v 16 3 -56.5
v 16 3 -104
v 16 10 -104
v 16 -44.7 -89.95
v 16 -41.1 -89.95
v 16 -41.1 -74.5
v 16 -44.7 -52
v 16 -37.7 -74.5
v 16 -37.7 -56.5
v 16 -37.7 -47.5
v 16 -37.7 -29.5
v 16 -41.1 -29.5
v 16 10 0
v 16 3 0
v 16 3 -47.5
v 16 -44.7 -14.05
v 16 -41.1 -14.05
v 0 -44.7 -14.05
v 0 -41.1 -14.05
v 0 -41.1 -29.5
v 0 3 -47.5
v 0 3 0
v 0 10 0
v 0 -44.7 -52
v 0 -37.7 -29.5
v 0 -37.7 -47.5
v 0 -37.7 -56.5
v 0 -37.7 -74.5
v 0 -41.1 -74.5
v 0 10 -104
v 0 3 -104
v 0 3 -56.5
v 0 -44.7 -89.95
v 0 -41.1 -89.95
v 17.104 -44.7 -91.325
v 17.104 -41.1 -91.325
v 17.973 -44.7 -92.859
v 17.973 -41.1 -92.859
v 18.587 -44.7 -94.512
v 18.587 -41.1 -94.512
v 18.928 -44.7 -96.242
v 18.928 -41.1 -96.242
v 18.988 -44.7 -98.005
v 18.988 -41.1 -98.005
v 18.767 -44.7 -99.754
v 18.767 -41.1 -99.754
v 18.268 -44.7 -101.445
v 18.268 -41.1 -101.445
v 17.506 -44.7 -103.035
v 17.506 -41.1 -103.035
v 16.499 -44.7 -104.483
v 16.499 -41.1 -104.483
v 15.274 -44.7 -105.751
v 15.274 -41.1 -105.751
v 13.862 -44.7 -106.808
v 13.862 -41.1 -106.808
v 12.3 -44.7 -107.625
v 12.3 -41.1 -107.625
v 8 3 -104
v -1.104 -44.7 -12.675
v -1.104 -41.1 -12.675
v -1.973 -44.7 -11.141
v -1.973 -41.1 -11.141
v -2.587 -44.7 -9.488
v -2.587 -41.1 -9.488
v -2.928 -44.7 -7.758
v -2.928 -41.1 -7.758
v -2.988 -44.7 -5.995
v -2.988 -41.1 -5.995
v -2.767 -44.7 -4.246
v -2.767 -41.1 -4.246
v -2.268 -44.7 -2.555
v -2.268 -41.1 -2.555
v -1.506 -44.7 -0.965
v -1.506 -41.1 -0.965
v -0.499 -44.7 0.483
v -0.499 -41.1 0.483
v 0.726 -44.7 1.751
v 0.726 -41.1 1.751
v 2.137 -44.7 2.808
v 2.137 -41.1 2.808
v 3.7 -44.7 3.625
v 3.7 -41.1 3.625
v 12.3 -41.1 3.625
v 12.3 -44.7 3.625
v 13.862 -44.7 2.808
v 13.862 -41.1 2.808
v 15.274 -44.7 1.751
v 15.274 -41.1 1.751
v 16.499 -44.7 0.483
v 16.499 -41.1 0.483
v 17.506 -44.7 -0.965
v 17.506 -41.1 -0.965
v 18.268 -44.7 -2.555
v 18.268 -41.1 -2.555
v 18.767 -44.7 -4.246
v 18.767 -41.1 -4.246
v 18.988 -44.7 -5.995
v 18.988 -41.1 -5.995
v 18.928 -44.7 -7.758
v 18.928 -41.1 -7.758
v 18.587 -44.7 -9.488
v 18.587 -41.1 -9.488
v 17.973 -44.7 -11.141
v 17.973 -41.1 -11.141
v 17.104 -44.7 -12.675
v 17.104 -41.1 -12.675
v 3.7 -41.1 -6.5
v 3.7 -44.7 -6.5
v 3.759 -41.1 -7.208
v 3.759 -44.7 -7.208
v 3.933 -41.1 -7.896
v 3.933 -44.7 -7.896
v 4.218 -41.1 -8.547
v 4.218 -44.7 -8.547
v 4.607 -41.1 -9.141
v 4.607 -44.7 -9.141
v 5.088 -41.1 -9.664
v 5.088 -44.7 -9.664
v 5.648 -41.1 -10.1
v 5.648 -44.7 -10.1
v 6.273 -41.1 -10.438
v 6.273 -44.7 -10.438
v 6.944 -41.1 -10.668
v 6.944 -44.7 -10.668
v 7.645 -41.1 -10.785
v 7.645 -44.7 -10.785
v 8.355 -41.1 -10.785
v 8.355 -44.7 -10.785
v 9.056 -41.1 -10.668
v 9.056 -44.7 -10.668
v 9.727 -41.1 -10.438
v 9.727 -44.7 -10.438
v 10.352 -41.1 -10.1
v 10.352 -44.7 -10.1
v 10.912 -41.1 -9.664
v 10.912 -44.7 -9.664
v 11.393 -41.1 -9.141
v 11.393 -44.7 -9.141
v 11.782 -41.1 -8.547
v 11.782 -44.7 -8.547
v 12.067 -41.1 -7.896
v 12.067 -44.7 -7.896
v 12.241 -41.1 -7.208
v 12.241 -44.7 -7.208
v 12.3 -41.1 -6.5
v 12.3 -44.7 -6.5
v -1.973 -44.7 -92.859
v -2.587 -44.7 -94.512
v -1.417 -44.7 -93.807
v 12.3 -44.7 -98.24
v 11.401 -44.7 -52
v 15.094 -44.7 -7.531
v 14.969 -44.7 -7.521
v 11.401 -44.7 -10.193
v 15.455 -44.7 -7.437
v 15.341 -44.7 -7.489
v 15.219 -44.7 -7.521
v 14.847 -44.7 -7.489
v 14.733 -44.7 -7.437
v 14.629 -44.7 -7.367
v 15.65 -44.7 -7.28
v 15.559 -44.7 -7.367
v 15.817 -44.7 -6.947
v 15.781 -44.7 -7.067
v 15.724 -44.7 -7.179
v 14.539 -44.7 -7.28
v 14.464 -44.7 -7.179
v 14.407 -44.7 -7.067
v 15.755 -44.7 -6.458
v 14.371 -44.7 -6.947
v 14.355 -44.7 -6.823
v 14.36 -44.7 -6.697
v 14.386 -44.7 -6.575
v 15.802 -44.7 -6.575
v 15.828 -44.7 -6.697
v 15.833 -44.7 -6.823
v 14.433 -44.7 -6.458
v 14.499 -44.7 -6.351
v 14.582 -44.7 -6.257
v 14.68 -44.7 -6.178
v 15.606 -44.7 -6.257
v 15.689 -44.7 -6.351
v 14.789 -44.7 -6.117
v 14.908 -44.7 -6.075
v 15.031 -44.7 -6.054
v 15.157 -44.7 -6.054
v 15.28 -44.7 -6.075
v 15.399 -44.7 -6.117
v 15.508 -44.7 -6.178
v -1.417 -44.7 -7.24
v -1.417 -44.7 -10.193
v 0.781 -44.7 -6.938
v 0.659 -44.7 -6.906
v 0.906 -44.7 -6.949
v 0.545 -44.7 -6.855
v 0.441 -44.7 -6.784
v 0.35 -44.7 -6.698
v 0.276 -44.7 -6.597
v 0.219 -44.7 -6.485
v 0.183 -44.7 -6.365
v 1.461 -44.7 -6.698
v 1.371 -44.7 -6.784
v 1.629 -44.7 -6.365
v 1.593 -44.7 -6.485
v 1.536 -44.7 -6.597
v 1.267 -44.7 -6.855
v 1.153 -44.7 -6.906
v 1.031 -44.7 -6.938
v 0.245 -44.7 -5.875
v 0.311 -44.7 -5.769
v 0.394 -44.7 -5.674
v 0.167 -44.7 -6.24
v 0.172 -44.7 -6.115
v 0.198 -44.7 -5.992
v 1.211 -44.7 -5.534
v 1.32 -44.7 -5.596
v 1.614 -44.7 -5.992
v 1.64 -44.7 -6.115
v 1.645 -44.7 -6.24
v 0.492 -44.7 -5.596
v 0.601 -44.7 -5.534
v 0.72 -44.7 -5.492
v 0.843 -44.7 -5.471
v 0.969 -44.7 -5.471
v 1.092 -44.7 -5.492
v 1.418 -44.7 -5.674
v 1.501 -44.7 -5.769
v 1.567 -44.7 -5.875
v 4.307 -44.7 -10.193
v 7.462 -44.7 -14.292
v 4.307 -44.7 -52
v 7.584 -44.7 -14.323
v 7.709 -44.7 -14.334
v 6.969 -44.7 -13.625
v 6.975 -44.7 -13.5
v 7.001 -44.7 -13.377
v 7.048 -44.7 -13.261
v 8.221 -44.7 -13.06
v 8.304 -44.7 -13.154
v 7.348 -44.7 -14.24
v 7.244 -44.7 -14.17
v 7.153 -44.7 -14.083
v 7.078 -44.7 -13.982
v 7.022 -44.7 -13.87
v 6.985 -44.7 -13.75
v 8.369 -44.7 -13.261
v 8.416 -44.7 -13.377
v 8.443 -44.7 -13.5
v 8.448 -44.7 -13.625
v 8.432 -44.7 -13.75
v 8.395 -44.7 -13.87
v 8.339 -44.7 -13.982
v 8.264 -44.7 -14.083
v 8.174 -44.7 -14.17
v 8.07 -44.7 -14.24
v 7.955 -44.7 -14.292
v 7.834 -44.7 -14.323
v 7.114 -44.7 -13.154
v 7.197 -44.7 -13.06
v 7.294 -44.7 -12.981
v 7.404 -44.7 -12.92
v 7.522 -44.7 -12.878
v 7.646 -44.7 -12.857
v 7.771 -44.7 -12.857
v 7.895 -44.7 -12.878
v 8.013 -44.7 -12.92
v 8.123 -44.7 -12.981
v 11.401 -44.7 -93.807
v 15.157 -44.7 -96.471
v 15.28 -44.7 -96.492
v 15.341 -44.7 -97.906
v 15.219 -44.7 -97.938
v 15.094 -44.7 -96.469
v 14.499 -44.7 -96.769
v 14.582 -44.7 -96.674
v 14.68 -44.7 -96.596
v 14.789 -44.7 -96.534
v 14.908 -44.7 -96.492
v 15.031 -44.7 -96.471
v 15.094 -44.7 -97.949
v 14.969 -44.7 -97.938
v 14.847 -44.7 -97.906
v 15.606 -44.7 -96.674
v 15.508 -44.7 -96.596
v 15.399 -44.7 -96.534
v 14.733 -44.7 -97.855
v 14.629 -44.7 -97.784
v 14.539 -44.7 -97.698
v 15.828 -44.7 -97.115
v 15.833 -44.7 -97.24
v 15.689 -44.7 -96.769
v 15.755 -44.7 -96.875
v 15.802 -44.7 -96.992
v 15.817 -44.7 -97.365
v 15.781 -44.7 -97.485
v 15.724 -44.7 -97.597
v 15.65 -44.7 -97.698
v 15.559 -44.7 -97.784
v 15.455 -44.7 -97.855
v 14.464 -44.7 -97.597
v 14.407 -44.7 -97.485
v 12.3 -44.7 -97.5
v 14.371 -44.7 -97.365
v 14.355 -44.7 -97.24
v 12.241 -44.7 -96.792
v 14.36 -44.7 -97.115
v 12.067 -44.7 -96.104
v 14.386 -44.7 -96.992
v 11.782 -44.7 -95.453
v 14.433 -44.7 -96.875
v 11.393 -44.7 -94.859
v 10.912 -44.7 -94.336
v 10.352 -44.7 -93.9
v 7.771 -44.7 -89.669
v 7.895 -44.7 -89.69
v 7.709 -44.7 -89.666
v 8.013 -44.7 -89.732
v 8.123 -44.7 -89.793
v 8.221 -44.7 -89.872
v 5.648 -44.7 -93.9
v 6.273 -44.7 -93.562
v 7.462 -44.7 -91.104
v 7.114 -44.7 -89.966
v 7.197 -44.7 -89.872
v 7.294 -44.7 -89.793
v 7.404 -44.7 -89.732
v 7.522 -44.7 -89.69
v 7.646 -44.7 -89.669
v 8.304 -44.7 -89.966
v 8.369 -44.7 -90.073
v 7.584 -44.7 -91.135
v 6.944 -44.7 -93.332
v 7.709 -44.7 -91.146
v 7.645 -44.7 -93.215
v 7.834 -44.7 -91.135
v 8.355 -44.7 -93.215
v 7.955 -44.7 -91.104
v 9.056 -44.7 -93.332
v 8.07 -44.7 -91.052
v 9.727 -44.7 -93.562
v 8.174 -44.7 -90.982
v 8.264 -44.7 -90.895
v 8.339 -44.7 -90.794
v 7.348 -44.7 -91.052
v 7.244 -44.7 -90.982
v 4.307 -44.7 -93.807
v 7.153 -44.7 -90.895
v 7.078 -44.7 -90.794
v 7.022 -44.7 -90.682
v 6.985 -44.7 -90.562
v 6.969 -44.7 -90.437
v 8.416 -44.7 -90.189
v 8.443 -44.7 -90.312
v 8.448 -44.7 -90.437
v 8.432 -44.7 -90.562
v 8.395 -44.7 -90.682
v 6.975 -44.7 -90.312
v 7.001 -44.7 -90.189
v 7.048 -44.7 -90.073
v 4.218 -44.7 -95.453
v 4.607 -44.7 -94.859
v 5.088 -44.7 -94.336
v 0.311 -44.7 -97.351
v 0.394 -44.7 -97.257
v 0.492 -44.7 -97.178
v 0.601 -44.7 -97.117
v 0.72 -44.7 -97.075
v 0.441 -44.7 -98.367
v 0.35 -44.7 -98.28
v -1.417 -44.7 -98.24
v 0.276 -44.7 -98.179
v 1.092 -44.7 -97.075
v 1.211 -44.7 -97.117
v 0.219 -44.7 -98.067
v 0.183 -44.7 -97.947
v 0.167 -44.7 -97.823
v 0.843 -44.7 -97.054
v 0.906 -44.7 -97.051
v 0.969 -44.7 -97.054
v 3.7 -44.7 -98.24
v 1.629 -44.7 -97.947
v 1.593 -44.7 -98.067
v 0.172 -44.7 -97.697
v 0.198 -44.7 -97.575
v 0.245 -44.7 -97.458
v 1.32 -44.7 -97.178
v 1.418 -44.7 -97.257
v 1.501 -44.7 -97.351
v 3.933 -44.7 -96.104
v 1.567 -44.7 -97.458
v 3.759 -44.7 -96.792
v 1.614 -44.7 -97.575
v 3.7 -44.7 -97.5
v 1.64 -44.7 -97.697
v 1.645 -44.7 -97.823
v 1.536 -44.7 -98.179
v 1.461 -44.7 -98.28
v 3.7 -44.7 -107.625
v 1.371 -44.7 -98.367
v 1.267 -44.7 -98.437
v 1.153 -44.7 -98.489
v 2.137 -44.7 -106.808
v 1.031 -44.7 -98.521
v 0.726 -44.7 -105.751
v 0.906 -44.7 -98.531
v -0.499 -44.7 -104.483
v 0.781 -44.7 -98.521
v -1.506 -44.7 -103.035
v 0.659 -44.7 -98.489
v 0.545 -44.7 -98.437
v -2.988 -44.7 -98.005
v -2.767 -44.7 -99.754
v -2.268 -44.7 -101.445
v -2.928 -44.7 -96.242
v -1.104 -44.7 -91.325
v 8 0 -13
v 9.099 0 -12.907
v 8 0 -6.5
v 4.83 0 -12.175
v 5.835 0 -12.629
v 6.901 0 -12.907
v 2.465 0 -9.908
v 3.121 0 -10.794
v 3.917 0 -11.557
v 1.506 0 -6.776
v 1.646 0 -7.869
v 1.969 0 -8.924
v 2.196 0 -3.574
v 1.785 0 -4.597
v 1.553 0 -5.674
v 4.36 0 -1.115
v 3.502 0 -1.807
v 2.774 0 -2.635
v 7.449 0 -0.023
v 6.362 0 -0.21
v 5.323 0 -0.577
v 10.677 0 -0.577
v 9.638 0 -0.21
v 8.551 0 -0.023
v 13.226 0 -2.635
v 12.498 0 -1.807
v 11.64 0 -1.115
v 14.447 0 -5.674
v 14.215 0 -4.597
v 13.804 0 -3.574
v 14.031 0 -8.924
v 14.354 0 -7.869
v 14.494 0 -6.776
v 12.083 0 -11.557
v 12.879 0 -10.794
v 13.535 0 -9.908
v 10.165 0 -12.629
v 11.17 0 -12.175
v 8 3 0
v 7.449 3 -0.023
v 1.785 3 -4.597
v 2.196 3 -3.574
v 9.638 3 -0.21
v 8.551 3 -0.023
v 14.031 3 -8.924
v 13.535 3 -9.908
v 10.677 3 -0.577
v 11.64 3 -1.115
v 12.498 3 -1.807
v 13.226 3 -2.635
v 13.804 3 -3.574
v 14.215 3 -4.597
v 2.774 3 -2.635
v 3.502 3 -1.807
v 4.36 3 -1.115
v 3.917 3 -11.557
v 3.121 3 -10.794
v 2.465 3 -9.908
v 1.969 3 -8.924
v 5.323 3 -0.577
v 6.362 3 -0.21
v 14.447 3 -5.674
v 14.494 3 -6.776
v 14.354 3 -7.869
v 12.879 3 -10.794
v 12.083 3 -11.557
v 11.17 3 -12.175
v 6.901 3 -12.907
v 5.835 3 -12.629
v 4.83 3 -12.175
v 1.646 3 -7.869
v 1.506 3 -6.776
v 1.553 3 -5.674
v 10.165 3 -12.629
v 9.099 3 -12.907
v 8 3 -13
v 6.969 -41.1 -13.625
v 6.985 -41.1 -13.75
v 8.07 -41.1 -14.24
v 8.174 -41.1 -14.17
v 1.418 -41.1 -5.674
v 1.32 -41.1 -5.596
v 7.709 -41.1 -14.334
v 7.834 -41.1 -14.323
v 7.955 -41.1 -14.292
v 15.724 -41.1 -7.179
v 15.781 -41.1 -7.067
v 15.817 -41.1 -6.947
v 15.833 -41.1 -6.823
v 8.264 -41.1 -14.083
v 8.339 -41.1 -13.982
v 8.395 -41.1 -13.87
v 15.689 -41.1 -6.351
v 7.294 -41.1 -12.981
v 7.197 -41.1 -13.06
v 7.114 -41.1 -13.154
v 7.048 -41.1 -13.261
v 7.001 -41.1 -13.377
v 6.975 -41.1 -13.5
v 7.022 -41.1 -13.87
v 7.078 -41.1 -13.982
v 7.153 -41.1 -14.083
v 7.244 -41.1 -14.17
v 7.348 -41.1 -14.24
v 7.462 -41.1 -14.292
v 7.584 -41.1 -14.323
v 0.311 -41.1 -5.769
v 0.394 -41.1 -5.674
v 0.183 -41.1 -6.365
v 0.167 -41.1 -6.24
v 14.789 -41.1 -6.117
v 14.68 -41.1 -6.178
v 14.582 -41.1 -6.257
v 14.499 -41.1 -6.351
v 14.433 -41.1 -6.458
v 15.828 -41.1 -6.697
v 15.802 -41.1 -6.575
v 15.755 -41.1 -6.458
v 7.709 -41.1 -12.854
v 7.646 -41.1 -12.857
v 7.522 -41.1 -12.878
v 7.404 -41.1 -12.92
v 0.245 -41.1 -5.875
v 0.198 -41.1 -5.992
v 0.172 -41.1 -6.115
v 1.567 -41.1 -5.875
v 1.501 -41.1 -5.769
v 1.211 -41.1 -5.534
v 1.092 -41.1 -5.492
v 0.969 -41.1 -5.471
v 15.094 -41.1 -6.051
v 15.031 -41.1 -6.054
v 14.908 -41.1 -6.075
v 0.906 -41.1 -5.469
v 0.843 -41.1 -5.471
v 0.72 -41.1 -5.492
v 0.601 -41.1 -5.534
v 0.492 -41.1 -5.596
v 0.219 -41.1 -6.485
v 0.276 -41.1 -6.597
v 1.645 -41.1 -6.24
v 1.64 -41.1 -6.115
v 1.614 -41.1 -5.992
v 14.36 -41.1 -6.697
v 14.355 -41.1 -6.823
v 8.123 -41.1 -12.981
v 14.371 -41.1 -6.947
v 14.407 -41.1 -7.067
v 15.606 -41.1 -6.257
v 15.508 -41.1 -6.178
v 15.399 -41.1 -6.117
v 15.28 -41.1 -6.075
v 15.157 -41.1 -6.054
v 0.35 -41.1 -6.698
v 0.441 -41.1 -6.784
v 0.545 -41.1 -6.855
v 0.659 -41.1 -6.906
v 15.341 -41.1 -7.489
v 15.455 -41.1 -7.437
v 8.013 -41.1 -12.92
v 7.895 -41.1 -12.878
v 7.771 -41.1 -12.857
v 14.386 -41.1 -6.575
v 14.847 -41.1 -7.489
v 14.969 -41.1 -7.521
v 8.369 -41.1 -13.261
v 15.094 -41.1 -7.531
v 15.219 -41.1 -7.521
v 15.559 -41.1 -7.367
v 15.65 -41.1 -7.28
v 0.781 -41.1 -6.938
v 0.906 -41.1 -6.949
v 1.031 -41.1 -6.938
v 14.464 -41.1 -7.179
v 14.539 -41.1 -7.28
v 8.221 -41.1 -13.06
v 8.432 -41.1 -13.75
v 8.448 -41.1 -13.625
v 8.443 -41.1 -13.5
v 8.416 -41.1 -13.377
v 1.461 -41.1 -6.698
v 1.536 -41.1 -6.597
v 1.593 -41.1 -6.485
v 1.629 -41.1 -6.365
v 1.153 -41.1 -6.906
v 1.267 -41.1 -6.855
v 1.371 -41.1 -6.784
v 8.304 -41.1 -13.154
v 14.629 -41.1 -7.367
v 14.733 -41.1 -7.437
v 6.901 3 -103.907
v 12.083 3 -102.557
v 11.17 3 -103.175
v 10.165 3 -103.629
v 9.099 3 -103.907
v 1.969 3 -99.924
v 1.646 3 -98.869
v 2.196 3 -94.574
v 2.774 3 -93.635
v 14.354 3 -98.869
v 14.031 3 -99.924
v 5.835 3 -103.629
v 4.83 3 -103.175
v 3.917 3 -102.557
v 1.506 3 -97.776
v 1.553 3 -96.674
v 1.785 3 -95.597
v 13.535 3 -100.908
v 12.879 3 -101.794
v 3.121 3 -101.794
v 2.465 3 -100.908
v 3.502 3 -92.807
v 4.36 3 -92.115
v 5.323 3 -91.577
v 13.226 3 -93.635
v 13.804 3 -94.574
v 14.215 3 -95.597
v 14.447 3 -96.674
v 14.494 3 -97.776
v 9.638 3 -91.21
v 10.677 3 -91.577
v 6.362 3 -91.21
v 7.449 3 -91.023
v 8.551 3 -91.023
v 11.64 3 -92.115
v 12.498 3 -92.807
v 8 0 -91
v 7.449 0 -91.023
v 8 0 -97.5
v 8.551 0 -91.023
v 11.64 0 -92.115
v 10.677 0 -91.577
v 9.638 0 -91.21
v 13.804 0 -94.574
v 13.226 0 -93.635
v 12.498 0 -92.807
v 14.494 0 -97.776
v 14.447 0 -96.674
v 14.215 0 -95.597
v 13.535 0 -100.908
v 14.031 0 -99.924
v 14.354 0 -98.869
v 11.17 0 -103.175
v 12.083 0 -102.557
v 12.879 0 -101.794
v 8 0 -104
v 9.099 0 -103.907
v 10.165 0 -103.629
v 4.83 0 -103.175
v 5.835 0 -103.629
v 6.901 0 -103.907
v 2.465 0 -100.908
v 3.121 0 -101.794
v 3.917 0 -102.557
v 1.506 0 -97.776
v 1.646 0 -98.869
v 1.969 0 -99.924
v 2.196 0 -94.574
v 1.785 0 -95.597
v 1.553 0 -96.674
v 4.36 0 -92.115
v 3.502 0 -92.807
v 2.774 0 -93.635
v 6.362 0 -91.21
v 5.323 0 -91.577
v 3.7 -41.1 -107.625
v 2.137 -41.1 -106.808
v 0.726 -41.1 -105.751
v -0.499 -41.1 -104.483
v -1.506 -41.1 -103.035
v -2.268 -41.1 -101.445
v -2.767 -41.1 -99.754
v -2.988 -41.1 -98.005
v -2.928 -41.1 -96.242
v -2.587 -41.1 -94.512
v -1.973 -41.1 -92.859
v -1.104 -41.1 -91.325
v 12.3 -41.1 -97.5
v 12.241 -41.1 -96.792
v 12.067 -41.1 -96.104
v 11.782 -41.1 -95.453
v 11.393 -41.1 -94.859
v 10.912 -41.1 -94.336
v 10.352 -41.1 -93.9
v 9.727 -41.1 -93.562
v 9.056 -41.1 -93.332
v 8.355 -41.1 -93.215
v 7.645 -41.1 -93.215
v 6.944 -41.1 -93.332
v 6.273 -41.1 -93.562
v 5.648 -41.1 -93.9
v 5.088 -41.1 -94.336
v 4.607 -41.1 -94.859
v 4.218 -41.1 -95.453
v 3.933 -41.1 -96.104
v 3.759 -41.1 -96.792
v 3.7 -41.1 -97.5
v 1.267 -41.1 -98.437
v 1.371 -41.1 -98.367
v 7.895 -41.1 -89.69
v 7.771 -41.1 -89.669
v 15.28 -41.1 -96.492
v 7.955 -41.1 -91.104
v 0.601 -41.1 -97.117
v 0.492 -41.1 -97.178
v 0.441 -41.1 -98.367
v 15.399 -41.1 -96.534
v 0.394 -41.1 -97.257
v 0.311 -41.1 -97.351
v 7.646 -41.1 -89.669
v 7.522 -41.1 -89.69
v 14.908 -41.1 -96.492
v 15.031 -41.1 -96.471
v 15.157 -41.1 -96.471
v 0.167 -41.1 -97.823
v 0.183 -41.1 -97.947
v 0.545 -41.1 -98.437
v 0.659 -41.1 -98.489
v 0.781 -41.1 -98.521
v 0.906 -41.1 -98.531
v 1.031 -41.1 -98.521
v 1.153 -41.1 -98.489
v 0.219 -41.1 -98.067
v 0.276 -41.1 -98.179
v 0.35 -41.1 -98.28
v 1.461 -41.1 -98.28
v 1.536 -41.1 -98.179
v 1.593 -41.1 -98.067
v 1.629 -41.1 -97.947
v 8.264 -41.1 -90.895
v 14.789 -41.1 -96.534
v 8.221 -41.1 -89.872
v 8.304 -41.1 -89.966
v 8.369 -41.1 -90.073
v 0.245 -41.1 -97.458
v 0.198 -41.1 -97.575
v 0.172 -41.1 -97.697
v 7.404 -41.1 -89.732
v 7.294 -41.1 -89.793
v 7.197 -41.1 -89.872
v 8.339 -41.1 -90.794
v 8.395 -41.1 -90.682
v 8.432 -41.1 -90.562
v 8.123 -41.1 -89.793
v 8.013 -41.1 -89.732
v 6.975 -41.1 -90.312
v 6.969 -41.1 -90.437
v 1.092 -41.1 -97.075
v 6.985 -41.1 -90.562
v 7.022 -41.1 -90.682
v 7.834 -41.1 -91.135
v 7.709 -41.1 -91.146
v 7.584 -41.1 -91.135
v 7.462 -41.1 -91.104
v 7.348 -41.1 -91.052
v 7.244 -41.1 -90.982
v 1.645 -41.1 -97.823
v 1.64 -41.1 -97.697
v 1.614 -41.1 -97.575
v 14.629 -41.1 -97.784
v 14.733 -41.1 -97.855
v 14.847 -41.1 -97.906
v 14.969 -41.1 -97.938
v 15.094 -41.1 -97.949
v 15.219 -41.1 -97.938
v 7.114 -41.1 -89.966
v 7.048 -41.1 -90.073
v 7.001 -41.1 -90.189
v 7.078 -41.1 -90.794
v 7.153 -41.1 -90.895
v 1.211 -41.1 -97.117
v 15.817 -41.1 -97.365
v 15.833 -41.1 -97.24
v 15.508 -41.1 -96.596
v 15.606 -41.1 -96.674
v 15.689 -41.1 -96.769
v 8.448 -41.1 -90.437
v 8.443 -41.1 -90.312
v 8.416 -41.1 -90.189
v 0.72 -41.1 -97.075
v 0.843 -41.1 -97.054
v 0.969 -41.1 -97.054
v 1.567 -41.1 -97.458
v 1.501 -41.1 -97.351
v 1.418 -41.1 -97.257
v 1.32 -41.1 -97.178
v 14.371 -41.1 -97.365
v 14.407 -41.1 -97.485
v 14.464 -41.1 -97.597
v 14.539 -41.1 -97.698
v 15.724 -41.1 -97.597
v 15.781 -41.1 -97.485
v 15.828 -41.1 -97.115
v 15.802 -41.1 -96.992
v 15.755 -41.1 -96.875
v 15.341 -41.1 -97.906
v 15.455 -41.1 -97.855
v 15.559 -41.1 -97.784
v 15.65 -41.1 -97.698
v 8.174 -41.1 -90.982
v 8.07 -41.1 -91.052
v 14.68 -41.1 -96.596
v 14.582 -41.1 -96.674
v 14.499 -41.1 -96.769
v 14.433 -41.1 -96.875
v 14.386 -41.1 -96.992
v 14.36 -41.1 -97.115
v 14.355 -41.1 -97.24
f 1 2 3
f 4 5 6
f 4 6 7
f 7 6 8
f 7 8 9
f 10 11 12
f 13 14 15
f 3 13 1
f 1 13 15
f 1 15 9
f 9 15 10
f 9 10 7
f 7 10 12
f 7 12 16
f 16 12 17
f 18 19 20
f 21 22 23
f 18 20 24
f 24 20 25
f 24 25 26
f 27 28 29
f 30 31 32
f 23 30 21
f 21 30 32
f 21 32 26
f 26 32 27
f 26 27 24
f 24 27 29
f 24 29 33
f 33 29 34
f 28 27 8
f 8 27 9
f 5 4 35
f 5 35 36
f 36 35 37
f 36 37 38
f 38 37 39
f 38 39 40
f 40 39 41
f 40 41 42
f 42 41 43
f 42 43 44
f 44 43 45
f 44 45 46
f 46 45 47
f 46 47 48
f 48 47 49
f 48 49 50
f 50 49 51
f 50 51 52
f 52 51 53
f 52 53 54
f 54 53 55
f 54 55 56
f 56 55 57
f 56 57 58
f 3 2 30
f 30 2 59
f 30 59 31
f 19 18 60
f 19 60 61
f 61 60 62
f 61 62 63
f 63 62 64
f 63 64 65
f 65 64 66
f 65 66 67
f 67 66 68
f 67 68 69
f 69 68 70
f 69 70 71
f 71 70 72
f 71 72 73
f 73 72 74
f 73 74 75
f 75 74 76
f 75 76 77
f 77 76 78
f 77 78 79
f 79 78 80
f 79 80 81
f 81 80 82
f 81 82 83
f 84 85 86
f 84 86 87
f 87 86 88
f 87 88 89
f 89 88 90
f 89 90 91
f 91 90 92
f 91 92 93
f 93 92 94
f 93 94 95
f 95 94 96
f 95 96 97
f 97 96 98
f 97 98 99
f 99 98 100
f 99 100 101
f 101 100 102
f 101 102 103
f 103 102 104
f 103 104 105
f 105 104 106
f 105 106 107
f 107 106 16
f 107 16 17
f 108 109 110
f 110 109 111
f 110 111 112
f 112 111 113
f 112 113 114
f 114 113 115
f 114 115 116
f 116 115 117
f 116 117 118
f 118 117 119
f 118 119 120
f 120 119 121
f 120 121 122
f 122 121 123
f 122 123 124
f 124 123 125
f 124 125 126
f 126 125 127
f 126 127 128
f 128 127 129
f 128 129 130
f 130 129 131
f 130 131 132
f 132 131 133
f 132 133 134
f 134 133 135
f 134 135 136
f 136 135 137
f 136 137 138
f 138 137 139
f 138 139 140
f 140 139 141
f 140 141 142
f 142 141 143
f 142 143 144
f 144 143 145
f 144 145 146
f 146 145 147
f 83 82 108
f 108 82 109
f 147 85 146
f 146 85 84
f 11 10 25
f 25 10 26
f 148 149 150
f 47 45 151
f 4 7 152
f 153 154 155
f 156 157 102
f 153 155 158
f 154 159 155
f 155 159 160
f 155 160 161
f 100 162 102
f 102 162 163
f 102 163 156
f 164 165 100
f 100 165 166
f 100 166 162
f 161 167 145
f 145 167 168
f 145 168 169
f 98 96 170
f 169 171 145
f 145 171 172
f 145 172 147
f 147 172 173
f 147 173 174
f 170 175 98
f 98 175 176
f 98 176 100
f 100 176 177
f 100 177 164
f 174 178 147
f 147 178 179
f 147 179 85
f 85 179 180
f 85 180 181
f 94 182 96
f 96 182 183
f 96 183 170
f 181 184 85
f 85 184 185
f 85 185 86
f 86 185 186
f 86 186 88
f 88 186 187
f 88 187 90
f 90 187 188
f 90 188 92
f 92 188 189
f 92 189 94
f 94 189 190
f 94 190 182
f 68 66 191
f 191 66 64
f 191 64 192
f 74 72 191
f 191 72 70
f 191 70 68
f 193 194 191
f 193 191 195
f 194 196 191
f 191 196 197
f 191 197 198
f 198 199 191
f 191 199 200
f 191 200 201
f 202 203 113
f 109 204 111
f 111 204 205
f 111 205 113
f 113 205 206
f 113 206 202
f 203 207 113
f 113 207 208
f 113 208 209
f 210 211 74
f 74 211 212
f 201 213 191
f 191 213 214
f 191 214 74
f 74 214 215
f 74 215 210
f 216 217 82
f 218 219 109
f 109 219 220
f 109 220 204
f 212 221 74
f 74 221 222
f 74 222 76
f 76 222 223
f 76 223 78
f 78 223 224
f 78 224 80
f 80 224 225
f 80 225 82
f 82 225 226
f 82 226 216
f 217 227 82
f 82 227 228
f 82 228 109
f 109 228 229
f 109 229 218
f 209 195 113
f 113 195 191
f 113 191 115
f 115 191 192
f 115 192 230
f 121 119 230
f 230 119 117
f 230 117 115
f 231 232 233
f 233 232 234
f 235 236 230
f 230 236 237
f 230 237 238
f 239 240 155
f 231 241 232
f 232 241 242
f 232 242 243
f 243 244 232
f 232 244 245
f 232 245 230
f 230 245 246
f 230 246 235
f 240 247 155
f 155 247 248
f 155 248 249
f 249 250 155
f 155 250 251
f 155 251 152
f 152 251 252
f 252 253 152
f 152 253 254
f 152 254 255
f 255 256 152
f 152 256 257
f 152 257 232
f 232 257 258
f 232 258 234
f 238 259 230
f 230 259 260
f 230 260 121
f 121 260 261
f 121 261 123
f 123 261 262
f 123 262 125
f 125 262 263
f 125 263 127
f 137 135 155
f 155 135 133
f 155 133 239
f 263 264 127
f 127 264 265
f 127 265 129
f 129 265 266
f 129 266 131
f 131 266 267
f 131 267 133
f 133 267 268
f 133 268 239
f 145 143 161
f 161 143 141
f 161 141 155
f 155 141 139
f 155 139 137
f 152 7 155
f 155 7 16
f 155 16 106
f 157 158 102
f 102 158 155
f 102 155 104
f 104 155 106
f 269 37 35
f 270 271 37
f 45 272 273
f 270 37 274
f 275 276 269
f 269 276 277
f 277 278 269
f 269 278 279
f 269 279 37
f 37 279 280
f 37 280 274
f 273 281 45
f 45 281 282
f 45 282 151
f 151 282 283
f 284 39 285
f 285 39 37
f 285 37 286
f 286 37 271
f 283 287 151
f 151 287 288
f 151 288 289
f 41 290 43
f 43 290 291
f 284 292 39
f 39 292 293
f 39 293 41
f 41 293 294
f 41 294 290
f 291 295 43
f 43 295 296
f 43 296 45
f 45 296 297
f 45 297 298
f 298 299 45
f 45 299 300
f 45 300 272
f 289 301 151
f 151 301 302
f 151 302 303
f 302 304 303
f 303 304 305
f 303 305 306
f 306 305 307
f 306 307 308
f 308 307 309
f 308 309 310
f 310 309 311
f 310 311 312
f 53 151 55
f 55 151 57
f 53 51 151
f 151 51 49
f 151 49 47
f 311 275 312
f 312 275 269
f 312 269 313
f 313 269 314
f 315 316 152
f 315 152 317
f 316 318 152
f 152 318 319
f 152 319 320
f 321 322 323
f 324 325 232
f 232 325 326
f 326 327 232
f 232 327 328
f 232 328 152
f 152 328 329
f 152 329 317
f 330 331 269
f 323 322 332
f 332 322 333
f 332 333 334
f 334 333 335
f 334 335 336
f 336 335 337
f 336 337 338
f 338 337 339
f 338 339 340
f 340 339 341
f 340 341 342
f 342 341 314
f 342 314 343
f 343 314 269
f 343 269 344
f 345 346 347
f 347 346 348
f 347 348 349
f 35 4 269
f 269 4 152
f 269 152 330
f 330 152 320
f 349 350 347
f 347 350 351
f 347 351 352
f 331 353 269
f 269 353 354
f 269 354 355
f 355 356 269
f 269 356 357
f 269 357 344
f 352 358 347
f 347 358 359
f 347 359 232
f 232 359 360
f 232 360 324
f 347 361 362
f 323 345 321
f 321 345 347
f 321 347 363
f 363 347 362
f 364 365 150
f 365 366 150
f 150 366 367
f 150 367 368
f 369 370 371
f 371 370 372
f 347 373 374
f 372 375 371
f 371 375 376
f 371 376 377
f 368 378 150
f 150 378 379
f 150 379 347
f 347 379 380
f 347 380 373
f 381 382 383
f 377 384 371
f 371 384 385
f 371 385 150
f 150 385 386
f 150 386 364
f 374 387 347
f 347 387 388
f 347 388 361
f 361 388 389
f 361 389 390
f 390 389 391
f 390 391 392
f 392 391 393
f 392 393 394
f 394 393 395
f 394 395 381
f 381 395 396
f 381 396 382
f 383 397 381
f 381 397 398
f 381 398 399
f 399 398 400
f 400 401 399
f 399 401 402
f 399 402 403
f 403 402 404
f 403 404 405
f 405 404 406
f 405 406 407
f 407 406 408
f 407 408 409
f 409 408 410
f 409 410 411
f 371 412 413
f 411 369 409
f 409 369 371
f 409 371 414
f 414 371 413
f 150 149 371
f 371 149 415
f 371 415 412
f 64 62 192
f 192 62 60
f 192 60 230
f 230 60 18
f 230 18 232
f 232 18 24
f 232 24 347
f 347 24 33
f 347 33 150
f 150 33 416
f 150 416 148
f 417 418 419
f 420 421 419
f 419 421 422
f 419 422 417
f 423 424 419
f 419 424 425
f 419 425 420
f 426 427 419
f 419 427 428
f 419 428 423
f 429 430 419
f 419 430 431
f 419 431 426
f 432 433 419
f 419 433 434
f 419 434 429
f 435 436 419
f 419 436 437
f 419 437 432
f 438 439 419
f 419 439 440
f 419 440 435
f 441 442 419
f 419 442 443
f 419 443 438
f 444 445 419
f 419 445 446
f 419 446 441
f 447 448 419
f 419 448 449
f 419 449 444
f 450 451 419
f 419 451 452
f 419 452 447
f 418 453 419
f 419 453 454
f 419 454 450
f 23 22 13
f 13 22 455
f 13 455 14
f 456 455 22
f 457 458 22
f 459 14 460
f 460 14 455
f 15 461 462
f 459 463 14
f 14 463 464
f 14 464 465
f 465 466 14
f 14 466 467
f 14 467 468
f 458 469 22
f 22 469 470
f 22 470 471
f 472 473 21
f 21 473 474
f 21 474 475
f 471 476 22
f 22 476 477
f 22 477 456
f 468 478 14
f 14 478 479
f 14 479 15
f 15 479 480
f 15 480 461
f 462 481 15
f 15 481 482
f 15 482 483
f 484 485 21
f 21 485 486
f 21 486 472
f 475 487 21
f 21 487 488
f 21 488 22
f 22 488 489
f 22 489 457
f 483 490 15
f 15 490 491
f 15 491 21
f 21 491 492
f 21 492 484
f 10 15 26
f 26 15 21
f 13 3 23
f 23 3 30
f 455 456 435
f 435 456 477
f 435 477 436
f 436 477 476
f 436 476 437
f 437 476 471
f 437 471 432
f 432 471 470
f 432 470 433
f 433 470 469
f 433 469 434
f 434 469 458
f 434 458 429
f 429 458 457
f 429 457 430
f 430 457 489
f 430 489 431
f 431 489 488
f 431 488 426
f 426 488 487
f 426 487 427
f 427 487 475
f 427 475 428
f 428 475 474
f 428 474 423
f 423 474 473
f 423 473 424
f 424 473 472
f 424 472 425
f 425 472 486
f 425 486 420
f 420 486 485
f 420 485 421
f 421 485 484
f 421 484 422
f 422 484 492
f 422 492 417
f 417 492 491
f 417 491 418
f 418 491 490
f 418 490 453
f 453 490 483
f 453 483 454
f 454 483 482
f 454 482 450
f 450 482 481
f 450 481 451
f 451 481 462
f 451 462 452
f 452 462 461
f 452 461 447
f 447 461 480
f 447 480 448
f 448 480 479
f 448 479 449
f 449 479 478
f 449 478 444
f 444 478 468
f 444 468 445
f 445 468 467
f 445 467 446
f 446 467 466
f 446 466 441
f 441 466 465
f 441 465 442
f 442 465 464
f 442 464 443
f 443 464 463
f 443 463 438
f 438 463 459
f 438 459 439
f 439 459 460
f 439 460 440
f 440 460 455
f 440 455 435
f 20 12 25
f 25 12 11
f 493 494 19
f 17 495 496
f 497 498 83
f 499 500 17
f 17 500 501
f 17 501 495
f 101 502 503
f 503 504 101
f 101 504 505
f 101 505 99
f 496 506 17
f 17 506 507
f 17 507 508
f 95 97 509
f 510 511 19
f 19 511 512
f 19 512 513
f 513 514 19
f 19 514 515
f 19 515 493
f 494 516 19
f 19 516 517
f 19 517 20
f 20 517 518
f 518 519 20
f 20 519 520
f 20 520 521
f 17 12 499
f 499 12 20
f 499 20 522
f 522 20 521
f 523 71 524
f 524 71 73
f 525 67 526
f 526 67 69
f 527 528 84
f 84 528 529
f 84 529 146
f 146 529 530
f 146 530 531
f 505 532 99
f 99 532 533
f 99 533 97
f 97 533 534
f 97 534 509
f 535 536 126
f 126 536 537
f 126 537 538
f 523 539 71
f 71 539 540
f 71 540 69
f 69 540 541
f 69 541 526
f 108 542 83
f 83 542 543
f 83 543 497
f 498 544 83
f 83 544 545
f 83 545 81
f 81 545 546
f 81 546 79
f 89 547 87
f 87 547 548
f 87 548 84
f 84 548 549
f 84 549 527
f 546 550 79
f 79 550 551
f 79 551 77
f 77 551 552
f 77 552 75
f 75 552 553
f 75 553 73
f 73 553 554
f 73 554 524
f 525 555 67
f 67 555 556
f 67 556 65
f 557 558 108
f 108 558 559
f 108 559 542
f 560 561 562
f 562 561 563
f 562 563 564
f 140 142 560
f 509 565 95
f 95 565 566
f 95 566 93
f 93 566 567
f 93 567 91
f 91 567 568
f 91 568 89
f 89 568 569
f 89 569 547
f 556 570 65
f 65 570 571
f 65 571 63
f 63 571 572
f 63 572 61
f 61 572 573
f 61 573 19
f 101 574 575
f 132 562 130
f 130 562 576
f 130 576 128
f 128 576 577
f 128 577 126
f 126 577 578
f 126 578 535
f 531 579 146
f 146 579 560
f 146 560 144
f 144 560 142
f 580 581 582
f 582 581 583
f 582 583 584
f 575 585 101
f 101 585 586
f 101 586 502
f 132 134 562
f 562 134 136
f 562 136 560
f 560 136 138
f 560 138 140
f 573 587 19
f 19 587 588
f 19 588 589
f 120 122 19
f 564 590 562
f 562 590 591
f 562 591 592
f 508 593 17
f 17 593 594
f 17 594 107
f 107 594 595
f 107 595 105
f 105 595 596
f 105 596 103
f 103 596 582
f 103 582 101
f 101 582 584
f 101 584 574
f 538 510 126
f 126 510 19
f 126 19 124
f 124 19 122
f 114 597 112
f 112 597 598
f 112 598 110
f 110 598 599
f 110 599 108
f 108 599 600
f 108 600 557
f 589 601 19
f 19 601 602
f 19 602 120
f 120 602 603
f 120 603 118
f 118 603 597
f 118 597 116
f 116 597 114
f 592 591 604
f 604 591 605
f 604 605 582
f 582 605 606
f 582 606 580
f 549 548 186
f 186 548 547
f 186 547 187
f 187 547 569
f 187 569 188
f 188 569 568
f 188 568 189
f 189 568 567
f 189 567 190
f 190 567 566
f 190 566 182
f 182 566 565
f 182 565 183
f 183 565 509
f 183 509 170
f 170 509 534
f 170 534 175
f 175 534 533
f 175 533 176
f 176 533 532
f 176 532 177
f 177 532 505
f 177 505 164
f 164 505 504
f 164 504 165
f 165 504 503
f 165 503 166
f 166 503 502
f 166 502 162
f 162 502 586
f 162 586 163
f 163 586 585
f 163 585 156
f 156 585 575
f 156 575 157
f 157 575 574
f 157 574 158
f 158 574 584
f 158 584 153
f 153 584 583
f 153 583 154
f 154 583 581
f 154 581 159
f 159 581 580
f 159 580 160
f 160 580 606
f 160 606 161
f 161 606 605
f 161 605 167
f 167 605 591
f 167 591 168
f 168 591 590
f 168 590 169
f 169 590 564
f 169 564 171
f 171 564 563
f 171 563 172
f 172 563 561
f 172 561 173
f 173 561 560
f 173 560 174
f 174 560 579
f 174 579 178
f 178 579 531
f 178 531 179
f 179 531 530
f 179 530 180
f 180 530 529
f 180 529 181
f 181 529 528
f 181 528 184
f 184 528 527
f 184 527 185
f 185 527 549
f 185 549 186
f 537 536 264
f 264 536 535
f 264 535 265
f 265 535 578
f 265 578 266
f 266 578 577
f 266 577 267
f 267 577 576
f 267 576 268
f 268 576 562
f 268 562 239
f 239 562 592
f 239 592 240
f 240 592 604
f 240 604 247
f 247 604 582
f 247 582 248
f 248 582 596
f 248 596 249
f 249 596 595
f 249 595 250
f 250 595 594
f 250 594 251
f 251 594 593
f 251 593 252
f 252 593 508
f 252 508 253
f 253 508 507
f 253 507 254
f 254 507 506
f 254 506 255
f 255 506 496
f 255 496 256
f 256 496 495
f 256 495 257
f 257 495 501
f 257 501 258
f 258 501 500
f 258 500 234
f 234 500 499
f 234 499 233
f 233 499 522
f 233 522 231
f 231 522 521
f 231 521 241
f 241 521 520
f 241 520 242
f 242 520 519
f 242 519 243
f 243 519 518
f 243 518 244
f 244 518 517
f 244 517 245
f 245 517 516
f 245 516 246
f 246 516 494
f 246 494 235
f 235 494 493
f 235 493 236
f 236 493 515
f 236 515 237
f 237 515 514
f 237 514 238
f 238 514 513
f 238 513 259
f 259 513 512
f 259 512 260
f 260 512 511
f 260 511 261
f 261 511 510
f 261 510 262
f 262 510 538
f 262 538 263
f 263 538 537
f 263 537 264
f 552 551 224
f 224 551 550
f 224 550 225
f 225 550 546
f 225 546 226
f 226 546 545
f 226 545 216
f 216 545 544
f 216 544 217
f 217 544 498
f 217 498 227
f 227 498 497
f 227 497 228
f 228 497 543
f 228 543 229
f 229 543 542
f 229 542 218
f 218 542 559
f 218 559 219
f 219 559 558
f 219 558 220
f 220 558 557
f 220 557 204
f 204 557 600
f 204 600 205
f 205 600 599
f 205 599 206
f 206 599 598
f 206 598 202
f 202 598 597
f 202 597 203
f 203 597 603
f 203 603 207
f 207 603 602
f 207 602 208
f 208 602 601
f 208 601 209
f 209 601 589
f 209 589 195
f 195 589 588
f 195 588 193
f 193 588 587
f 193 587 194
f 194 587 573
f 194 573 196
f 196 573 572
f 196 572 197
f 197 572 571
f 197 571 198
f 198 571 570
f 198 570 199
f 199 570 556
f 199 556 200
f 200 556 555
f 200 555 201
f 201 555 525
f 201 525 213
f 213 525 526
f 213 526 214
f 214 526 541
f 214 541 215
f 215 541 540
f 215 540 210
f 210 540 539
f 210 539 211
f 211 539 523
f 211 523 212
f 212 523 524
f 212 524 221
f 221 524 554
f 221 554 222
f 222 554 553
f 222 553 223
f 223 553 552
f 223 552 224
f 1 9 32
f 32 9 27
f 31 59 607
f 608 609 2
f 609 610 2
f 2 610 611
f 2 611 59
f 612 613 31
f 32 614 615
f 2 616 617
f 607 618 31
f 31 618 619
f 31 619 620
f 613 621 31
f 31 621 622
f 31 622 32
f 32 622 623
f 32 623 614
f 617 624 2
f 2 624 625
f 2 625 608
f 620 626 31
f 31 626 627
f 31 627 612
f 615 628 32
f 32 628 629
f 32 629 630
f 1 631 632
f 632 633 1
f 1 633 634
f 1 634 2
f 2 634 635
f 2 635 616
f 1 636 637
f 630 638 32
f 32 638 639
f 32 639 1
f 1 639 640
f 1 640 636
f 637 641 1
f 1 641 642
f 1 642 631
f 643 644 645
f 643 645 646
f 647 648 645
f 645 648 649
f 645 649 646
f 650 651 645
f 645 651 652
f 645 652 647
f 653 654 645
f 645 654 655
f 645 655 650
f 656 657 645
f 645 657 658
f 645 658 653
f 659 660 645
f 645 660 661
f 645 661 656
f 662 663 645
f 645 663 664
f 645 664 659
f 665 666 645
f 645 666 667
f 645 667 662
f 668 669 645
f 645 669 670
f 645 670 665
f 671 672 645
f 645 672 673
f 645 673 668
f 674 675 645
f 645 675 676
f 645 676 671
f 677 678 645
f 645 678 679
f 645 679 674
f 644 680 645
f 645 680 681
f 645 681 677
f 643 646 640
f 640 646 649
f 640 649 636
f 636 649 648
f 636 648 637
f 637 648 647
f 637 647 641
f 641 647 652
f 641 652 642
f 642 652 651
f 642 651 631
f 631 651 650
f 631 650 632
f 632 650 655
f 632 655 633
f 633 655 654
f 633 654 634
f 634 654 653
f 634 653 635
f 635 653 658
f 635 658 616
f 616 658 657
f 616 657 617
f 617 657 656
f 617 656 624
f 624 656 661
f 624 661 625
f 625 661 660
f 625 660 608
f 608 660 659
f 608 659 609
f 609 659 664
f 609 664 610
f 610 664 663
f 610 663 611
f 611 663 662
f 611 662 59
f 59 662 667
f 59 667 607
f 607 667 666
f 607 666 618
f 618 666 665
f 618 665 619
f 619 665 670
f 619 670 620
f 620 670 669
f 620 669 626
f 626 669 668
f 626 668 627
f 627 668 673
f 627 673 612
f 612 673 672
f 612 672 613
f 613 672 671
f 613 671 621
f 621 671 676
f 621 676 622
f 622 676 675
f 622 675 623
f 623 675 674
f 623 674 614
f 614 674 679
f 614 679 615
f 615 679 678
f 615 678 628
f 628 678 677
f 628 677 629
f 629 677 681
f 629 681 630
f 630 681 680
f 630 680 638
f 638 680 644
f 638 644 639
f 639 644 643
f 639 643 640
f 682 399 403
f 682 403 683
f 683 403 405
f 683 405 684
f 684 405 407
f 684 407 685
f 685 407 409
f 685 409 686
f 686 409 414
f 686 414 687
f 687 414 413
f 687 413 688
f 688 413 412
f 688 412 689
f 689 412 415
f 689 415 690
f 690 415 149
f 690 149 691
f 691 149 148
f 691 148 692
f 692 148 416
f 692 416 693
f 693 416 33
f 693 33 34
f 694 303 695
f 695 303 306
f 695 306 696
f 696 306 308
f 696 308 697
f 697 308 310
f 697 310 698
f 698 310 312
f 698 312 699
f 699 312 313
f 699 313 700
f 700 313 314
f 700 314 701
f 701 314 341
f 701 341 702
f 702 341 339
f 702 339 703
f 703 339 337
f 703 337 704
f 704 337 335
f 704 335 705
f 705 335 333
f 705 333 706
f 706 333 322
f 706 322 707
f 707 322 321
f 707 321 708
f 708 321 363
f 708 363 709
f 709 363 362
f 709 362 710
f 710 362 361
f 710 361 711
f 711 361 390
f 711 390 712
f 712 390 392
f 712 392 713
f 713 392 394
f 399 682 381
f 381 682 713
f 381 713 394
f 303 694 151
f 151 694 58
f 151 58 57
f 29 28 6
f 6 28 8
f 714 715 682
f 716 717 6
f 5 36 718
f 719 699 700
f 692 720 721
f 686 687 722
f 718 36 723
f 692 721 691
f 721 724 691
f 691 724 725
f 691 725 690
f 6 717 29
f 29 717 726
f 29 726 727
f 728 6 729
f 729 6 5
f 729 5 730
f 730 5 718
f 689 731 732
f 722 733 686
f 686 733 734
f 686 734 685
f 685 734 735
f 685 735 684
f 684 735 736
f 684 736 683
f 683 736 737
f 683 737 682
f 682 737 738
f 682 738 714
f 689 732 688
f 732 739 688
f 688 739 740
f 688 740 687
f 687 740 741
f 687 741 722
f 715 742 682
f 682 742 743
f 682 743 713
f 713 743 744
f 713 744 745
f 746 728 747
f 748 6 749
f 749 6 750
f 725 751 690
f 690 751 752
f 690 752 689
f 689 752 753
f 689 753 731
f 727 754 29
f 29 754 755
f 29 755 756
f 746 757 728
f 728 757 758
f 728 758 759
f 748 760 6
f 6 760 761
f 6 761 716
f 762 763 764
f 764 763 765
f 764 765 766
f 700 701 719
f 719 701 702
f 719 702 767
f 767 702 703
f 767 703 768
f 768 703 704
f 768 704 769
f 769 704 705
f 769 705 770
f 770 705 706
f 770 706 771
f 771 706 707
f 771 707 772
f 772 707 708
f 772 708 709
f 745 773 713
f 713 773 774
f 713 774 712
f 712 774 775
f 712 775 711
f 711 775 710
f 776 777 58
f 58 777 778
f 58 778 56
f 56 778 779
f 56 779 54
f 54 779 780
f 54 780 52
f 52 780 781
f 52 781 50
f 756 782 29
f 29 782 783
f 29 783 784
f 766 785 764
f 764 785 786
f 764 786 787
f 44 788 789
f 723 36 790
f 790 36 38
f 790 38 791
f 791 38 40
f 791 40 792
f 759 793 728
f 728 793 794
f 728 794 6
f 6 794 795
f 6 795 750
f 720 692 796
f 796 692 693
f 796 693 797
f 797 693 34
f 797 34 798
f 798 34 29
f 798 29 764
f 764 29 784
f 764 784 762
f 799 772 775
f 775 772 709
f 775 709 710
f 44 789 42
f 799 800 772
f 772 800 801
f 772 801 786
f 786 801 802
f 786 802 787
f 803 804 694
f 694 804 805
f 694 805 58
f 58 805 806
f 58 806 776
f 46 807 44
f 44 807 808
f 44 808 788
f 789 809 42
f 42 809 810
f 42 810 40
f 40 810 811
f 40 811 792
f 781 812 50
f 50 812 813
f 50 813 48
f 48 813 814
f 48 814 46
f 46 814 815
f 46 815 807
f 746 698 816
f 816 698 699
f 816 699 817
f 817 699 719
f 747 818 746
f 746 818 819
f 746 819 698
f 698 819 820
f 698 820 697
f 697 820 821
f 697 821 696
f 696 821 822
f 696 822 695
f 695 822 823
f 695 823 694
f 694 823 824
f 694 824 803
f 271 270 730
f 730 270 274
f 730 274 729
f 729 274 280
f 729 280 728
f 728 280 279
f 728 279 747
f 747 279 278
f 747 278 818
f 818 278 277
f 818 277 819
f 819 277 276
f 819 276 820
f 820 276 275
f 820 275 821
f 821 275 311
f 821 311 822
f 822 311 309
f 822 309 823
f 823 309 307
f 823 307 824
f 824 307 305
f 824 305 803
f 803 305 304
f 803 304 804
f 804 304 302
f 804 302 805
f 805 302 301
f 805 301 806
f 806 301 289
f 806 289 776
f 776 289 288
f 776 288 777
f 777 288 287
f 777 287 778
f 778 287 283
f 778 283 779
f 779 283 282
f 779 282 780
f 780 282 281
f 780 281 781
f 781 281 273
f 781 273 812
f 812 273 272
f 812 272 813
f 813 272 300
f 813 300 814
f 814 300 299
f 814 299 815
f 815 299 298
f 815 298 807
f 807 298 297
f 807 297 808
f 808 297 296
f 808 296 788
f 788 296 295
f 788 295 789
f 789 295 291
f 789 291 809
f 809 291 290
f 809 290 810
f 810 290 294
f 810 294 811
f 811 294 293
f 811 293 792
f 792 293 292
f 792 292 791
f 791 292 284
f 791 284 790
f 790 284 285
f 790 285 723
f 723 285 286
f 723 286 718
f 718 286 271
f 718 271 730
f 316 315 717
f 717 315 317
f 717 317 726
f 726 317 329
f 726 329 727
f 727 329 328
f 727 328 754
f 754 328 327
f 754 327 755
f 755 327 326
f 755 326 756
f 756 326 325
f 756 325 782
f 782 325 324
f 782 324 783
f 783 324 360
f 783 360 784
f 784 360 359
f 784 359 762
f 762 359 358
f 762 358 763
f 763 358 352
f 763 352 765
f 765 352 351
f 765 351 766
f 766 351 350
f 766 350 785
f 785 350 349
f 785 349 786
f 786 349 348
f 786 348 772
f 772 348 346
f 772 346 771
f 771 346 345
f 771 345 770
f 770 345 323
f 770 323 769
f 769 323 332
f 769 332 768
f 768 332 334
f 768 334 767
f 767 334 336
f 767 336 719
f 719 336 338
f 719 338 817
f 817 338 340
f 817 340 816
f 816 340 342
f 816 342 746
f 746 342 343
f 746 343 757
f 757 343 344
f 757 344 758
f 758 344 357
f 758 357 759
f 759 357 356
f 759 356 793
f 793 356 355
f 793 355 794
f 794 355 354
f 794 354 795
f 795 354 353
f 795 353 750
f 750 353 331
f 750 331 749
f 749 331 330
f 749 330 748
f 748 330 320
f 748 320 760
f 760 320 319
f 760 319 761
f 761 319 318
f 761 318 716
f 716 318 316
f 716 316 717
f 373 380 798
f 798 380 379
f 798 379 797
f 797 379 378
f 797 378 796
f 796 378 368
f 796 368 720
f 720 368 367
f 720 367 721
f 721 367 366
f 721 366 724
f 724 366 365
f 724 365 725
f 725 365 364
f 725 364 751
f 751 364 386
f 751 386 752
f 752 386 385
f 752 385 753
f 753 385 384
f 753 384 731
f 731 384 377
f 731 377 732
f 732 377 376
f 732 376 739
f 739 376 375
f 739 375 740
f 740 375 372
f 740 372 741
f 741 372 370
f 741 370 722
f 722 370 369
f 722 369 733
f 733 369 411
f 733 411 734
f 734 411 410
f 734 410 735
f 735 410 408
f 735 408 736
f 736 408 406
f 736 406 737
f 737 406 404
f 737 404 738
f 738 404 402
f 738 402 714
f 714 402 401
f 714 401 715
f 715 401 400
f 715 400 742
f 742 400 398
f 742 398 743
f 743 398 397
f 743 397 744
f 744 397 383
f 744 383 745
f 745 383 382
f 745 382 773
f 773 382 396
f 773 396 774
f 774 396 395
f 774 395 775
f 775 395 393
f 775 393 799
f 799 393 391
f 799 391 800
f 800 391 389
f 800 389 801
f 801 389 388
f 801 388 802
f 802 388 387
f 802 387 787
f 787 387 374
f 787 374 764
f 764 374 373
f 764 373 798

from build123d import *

# Parameters (mm, degrees)
EXTRUDE_1_DEPTH     = 16
CUT_EXTRUDE_1_DEPTH = 3
EXTRUDE_START       = -44.7
EXTRUDE_2_DEPTH     = 7
CUT_EXTRUDE_START   = -44.7
CUT_EXTRUDE_2_DEPTH = 7
SKETCH_4_W          = 33.124722218
SKETCH_4_H          = 3.4
CUT_EXTRUDE_3_DEPTH = 25
CUT_EXTRUDE_4_REACH = 79.827
SKETCH_6_R          = 0.74


# Read off the part's stored shape, not the designer's step: 凸台-拉伸2, 切除-拉伸2
with BuildPart() as part:
    # 草图1 → 凸台-拉伸1 (new body)
    with BuildSketch(Plane(origin=(0, 0, 0), x_dir=(0, 0, -1), z_dir=(1, 0, 0))):
        Polygon((0, 0), (13, 0), (13, 3), (47.5, 3), (47.5, -37.7), (0, -37.7), (0, -44.7), (52, -44.7), (52, 10), (0, 10), align=None)
    extrude_1 = extrude(amount=EXTRUDE_1_DEPTH)

    # 草图2 → 切除-拉伸1 (cut)
    with BuildSketch(Plane.XZ):
        with BuildLine():
            Line((8, 0), (0, 0))
            Line((0, 0), (0, -6.5))
            Line((0, -6.5), (0, -13))
            Line((0, -13), (8.000000017, -13))
            ThreePointArc((8.000000017, -13), (1.5, -6.500000009), (8, 0))
        make_face()
        with BuildLine():
            Line((16, 0), (8, 0))
            ThreePointArc((8, 0), (12.596194078, -1.903805922), (14.5, -6.5))
            ThreePointArc((14.5, -6.5), (12.596194084, -11.096194072), (8.000000017, -13))
            Line((8.000000017, -13), (16, -13))
            Line((16, -13), (16, 0))
        make_face()
    cut_extrude_1 = extrude(amount=-CUT_EXTRUDE_1_DEPTH, mode=Mode.SUBTRACT)

    # 凸台-拉伸2 outline → 凸台-拉伸2 (add)
    with BuildSketch(Plane(origin=(0, 0, 0), x_dir=(1, 0, 0), z_dir=(0, 1, 0)).offset(EXTRUDE_START)):
        with BuildLine():
            ThreePointArc((0, 14.049834435), (8, -4.5), (16, 14.049834435))
            Line((16, 14.049834435), (16, 0))
            Line((16, 0), (0, 0))
            Line((0, 0), (0, 14.049834435))
        make_face()
    extrude_2 = extrude(amount=EXTRUDE_2_DEPTH)

    # 切除-拉伸2 outline → 切除-拉伸2 (cut)
    with BuildSketch(Plane(origin=(0, 0, 0), x_dir=(1, 0, 0), z_dir=(0, 1, 0)).offset(CUT_EXTRUDE_START)):
        with BuildLine():
            ThreePointArc((12.3, 6.5), (8, 10.8), (3.7, 6.5))
            Line((3.7, 6.5), (3.7, -3.624722218))
            ThreePointArc((3.7, -3.624722218), (8, -4.5), (12.3, -3.624722218))
            Line((12.3, -3.624722218), (12.3, 6.5))
        make_face()
    cut_extrude_2 = extrude(amount=CUT_EXTRUDE_2_DEPTH, mode=Mode.SUBTRACT)

    # 草图4 → 切除-拉伸3 (cut, symmetric)
    with BuildSketch(Plane.ZY):
        with Locations((-12.937638891, -39.4)):
            Rectangle(SKETCH_4_W, SKETCH_4_H)
    cut_extrude_3 = extrude(amount=CUT_EXTRUDE_3_DEPTH, both=True, mode=Mode.SUBTRACT)

    # 草图6 → 切除-拉伸4 (cut, up to next)
    with BuildSketch(Plane.XZ.offset(44.7), mode=Mode.PRIVATE) as cut_extrude_4_sk1:
        with Locations(Location((0.90598139, -6.208624029, 0), (0, 0, 270))):
            Circle(SKETCH_6_R)
    cut_extrude_4_tool1 = extrude(cut_extrude_4_sk1.sketch, amount=-CUT_EXTRUDE_4_REACH, mode=Mode.PRIVATE) & part.part
    # 草图6 → 切除-拉伸4 (cut, up to next)
    with BuildSketch(Plane.XZ.offset(44.7), mode=Mode.PRIVATE) as cut_extrude_4_sk2:
        with Locations(Location((7.708624029, -13.59401861, 0), (0, 0, 270))):
            Circle(SKETCH_6_R)
    cut_extrude_4_tool2 = extrude(cut_extrude_4_sk2.sketch, amount=-CUT_EXTRUDE_4_REACH, mode=Mode.PRIVATE) & part.part
    # 草图6 → 切除-拉伸4 (cut, up to next)
    with BuildSketch(Plane.XZ.offset(44.7), mode=Mode.PRIVATE) as cut_extrude_4_sk3:
        with Locations(Location((15.09401861, -6.791375971, 0), (0, 0, 270))):
            Circle(SKETCH_6_R)
    cut_extrude_4_tool3 = extrude(cut_extrude_4_sk3.sketch, amount=-CUT_EXTRUDE_4_REACH, mode=Mode.PRIVATE) & part.part
    cut_extrude_4_1 = cut_extrude_4_tool1.solids().sort_by_distance((0.905981, -44.7, -6.208624))[0]
    add(cut_extrude_4_1, mode=Mode.SUBTRACT)
    cut_extrude_4_2 = cut_extrude_4_tool2.solids().sort_by_distance((7.708624, -44.7, -13.594019))[0]
    add(cut_extrude_4_2, mode=Mode.SUBTRACT)
    cut_extrude_4_3 = cut_extrude_4_tool3.solids().sort_by_distance((15.094019, -44.7, -6.791376))[0]
    add(cut_extrude_4_3, mode=Mode.SUBTRACT)
    cut_extrude_4 = cut_extrude_4_1 + cut_extrude_4_2 + cut_extrude_4_3  # 切除-拉伸4 as one shape, for the pattern or mirror that repeats it

    # 镜向1: 凸台-拉伸1, 切除-拉伸1, 凸台-拉伸2, 切除-拉伸2, 切除-拉伸3, 切除-拉伸4 across plane
    add(extrude_1.mirror(Plane(origin=(16, -44.7, -52), x_dir=(1, 0, 0), z_dir=(0, 0, 1))))
    add(cut_extrude_1.mirror(Plane(origin=(16, -44.7, -52), x_dir=(1, 0, 0), z_dir=(0, 0, 1))), mode=Mode.SUBTRACT)
    add(extrude_2.mirror(Plane(origin=(16, -44.7, -52), x_dir=(1, 0, 0), z_dir=(0, 0, 1))))
    add(cut_extrude_2.mirror(Plane(origin=(16, -44.7, -52), x_dir=(1, 0, 0), z_dir=(0, 0, 1))), mode=Mode.SUBTRACT)
    add(cut_extrude_3.mirror(Plane(origin=(16, -44.7, -52), x_dir=(1, 0, 0), z_dir=(0, 0, 1))), mode=Mode.SUBTRACT)
    add(cut_extrude_4.mirror(Plane(origin=(16, -44.7, -52), x_dir=(1, 0, 0), z_dir=(0, 0, 1))), mode=Mode.SUBTRACT)


solid = part.part
